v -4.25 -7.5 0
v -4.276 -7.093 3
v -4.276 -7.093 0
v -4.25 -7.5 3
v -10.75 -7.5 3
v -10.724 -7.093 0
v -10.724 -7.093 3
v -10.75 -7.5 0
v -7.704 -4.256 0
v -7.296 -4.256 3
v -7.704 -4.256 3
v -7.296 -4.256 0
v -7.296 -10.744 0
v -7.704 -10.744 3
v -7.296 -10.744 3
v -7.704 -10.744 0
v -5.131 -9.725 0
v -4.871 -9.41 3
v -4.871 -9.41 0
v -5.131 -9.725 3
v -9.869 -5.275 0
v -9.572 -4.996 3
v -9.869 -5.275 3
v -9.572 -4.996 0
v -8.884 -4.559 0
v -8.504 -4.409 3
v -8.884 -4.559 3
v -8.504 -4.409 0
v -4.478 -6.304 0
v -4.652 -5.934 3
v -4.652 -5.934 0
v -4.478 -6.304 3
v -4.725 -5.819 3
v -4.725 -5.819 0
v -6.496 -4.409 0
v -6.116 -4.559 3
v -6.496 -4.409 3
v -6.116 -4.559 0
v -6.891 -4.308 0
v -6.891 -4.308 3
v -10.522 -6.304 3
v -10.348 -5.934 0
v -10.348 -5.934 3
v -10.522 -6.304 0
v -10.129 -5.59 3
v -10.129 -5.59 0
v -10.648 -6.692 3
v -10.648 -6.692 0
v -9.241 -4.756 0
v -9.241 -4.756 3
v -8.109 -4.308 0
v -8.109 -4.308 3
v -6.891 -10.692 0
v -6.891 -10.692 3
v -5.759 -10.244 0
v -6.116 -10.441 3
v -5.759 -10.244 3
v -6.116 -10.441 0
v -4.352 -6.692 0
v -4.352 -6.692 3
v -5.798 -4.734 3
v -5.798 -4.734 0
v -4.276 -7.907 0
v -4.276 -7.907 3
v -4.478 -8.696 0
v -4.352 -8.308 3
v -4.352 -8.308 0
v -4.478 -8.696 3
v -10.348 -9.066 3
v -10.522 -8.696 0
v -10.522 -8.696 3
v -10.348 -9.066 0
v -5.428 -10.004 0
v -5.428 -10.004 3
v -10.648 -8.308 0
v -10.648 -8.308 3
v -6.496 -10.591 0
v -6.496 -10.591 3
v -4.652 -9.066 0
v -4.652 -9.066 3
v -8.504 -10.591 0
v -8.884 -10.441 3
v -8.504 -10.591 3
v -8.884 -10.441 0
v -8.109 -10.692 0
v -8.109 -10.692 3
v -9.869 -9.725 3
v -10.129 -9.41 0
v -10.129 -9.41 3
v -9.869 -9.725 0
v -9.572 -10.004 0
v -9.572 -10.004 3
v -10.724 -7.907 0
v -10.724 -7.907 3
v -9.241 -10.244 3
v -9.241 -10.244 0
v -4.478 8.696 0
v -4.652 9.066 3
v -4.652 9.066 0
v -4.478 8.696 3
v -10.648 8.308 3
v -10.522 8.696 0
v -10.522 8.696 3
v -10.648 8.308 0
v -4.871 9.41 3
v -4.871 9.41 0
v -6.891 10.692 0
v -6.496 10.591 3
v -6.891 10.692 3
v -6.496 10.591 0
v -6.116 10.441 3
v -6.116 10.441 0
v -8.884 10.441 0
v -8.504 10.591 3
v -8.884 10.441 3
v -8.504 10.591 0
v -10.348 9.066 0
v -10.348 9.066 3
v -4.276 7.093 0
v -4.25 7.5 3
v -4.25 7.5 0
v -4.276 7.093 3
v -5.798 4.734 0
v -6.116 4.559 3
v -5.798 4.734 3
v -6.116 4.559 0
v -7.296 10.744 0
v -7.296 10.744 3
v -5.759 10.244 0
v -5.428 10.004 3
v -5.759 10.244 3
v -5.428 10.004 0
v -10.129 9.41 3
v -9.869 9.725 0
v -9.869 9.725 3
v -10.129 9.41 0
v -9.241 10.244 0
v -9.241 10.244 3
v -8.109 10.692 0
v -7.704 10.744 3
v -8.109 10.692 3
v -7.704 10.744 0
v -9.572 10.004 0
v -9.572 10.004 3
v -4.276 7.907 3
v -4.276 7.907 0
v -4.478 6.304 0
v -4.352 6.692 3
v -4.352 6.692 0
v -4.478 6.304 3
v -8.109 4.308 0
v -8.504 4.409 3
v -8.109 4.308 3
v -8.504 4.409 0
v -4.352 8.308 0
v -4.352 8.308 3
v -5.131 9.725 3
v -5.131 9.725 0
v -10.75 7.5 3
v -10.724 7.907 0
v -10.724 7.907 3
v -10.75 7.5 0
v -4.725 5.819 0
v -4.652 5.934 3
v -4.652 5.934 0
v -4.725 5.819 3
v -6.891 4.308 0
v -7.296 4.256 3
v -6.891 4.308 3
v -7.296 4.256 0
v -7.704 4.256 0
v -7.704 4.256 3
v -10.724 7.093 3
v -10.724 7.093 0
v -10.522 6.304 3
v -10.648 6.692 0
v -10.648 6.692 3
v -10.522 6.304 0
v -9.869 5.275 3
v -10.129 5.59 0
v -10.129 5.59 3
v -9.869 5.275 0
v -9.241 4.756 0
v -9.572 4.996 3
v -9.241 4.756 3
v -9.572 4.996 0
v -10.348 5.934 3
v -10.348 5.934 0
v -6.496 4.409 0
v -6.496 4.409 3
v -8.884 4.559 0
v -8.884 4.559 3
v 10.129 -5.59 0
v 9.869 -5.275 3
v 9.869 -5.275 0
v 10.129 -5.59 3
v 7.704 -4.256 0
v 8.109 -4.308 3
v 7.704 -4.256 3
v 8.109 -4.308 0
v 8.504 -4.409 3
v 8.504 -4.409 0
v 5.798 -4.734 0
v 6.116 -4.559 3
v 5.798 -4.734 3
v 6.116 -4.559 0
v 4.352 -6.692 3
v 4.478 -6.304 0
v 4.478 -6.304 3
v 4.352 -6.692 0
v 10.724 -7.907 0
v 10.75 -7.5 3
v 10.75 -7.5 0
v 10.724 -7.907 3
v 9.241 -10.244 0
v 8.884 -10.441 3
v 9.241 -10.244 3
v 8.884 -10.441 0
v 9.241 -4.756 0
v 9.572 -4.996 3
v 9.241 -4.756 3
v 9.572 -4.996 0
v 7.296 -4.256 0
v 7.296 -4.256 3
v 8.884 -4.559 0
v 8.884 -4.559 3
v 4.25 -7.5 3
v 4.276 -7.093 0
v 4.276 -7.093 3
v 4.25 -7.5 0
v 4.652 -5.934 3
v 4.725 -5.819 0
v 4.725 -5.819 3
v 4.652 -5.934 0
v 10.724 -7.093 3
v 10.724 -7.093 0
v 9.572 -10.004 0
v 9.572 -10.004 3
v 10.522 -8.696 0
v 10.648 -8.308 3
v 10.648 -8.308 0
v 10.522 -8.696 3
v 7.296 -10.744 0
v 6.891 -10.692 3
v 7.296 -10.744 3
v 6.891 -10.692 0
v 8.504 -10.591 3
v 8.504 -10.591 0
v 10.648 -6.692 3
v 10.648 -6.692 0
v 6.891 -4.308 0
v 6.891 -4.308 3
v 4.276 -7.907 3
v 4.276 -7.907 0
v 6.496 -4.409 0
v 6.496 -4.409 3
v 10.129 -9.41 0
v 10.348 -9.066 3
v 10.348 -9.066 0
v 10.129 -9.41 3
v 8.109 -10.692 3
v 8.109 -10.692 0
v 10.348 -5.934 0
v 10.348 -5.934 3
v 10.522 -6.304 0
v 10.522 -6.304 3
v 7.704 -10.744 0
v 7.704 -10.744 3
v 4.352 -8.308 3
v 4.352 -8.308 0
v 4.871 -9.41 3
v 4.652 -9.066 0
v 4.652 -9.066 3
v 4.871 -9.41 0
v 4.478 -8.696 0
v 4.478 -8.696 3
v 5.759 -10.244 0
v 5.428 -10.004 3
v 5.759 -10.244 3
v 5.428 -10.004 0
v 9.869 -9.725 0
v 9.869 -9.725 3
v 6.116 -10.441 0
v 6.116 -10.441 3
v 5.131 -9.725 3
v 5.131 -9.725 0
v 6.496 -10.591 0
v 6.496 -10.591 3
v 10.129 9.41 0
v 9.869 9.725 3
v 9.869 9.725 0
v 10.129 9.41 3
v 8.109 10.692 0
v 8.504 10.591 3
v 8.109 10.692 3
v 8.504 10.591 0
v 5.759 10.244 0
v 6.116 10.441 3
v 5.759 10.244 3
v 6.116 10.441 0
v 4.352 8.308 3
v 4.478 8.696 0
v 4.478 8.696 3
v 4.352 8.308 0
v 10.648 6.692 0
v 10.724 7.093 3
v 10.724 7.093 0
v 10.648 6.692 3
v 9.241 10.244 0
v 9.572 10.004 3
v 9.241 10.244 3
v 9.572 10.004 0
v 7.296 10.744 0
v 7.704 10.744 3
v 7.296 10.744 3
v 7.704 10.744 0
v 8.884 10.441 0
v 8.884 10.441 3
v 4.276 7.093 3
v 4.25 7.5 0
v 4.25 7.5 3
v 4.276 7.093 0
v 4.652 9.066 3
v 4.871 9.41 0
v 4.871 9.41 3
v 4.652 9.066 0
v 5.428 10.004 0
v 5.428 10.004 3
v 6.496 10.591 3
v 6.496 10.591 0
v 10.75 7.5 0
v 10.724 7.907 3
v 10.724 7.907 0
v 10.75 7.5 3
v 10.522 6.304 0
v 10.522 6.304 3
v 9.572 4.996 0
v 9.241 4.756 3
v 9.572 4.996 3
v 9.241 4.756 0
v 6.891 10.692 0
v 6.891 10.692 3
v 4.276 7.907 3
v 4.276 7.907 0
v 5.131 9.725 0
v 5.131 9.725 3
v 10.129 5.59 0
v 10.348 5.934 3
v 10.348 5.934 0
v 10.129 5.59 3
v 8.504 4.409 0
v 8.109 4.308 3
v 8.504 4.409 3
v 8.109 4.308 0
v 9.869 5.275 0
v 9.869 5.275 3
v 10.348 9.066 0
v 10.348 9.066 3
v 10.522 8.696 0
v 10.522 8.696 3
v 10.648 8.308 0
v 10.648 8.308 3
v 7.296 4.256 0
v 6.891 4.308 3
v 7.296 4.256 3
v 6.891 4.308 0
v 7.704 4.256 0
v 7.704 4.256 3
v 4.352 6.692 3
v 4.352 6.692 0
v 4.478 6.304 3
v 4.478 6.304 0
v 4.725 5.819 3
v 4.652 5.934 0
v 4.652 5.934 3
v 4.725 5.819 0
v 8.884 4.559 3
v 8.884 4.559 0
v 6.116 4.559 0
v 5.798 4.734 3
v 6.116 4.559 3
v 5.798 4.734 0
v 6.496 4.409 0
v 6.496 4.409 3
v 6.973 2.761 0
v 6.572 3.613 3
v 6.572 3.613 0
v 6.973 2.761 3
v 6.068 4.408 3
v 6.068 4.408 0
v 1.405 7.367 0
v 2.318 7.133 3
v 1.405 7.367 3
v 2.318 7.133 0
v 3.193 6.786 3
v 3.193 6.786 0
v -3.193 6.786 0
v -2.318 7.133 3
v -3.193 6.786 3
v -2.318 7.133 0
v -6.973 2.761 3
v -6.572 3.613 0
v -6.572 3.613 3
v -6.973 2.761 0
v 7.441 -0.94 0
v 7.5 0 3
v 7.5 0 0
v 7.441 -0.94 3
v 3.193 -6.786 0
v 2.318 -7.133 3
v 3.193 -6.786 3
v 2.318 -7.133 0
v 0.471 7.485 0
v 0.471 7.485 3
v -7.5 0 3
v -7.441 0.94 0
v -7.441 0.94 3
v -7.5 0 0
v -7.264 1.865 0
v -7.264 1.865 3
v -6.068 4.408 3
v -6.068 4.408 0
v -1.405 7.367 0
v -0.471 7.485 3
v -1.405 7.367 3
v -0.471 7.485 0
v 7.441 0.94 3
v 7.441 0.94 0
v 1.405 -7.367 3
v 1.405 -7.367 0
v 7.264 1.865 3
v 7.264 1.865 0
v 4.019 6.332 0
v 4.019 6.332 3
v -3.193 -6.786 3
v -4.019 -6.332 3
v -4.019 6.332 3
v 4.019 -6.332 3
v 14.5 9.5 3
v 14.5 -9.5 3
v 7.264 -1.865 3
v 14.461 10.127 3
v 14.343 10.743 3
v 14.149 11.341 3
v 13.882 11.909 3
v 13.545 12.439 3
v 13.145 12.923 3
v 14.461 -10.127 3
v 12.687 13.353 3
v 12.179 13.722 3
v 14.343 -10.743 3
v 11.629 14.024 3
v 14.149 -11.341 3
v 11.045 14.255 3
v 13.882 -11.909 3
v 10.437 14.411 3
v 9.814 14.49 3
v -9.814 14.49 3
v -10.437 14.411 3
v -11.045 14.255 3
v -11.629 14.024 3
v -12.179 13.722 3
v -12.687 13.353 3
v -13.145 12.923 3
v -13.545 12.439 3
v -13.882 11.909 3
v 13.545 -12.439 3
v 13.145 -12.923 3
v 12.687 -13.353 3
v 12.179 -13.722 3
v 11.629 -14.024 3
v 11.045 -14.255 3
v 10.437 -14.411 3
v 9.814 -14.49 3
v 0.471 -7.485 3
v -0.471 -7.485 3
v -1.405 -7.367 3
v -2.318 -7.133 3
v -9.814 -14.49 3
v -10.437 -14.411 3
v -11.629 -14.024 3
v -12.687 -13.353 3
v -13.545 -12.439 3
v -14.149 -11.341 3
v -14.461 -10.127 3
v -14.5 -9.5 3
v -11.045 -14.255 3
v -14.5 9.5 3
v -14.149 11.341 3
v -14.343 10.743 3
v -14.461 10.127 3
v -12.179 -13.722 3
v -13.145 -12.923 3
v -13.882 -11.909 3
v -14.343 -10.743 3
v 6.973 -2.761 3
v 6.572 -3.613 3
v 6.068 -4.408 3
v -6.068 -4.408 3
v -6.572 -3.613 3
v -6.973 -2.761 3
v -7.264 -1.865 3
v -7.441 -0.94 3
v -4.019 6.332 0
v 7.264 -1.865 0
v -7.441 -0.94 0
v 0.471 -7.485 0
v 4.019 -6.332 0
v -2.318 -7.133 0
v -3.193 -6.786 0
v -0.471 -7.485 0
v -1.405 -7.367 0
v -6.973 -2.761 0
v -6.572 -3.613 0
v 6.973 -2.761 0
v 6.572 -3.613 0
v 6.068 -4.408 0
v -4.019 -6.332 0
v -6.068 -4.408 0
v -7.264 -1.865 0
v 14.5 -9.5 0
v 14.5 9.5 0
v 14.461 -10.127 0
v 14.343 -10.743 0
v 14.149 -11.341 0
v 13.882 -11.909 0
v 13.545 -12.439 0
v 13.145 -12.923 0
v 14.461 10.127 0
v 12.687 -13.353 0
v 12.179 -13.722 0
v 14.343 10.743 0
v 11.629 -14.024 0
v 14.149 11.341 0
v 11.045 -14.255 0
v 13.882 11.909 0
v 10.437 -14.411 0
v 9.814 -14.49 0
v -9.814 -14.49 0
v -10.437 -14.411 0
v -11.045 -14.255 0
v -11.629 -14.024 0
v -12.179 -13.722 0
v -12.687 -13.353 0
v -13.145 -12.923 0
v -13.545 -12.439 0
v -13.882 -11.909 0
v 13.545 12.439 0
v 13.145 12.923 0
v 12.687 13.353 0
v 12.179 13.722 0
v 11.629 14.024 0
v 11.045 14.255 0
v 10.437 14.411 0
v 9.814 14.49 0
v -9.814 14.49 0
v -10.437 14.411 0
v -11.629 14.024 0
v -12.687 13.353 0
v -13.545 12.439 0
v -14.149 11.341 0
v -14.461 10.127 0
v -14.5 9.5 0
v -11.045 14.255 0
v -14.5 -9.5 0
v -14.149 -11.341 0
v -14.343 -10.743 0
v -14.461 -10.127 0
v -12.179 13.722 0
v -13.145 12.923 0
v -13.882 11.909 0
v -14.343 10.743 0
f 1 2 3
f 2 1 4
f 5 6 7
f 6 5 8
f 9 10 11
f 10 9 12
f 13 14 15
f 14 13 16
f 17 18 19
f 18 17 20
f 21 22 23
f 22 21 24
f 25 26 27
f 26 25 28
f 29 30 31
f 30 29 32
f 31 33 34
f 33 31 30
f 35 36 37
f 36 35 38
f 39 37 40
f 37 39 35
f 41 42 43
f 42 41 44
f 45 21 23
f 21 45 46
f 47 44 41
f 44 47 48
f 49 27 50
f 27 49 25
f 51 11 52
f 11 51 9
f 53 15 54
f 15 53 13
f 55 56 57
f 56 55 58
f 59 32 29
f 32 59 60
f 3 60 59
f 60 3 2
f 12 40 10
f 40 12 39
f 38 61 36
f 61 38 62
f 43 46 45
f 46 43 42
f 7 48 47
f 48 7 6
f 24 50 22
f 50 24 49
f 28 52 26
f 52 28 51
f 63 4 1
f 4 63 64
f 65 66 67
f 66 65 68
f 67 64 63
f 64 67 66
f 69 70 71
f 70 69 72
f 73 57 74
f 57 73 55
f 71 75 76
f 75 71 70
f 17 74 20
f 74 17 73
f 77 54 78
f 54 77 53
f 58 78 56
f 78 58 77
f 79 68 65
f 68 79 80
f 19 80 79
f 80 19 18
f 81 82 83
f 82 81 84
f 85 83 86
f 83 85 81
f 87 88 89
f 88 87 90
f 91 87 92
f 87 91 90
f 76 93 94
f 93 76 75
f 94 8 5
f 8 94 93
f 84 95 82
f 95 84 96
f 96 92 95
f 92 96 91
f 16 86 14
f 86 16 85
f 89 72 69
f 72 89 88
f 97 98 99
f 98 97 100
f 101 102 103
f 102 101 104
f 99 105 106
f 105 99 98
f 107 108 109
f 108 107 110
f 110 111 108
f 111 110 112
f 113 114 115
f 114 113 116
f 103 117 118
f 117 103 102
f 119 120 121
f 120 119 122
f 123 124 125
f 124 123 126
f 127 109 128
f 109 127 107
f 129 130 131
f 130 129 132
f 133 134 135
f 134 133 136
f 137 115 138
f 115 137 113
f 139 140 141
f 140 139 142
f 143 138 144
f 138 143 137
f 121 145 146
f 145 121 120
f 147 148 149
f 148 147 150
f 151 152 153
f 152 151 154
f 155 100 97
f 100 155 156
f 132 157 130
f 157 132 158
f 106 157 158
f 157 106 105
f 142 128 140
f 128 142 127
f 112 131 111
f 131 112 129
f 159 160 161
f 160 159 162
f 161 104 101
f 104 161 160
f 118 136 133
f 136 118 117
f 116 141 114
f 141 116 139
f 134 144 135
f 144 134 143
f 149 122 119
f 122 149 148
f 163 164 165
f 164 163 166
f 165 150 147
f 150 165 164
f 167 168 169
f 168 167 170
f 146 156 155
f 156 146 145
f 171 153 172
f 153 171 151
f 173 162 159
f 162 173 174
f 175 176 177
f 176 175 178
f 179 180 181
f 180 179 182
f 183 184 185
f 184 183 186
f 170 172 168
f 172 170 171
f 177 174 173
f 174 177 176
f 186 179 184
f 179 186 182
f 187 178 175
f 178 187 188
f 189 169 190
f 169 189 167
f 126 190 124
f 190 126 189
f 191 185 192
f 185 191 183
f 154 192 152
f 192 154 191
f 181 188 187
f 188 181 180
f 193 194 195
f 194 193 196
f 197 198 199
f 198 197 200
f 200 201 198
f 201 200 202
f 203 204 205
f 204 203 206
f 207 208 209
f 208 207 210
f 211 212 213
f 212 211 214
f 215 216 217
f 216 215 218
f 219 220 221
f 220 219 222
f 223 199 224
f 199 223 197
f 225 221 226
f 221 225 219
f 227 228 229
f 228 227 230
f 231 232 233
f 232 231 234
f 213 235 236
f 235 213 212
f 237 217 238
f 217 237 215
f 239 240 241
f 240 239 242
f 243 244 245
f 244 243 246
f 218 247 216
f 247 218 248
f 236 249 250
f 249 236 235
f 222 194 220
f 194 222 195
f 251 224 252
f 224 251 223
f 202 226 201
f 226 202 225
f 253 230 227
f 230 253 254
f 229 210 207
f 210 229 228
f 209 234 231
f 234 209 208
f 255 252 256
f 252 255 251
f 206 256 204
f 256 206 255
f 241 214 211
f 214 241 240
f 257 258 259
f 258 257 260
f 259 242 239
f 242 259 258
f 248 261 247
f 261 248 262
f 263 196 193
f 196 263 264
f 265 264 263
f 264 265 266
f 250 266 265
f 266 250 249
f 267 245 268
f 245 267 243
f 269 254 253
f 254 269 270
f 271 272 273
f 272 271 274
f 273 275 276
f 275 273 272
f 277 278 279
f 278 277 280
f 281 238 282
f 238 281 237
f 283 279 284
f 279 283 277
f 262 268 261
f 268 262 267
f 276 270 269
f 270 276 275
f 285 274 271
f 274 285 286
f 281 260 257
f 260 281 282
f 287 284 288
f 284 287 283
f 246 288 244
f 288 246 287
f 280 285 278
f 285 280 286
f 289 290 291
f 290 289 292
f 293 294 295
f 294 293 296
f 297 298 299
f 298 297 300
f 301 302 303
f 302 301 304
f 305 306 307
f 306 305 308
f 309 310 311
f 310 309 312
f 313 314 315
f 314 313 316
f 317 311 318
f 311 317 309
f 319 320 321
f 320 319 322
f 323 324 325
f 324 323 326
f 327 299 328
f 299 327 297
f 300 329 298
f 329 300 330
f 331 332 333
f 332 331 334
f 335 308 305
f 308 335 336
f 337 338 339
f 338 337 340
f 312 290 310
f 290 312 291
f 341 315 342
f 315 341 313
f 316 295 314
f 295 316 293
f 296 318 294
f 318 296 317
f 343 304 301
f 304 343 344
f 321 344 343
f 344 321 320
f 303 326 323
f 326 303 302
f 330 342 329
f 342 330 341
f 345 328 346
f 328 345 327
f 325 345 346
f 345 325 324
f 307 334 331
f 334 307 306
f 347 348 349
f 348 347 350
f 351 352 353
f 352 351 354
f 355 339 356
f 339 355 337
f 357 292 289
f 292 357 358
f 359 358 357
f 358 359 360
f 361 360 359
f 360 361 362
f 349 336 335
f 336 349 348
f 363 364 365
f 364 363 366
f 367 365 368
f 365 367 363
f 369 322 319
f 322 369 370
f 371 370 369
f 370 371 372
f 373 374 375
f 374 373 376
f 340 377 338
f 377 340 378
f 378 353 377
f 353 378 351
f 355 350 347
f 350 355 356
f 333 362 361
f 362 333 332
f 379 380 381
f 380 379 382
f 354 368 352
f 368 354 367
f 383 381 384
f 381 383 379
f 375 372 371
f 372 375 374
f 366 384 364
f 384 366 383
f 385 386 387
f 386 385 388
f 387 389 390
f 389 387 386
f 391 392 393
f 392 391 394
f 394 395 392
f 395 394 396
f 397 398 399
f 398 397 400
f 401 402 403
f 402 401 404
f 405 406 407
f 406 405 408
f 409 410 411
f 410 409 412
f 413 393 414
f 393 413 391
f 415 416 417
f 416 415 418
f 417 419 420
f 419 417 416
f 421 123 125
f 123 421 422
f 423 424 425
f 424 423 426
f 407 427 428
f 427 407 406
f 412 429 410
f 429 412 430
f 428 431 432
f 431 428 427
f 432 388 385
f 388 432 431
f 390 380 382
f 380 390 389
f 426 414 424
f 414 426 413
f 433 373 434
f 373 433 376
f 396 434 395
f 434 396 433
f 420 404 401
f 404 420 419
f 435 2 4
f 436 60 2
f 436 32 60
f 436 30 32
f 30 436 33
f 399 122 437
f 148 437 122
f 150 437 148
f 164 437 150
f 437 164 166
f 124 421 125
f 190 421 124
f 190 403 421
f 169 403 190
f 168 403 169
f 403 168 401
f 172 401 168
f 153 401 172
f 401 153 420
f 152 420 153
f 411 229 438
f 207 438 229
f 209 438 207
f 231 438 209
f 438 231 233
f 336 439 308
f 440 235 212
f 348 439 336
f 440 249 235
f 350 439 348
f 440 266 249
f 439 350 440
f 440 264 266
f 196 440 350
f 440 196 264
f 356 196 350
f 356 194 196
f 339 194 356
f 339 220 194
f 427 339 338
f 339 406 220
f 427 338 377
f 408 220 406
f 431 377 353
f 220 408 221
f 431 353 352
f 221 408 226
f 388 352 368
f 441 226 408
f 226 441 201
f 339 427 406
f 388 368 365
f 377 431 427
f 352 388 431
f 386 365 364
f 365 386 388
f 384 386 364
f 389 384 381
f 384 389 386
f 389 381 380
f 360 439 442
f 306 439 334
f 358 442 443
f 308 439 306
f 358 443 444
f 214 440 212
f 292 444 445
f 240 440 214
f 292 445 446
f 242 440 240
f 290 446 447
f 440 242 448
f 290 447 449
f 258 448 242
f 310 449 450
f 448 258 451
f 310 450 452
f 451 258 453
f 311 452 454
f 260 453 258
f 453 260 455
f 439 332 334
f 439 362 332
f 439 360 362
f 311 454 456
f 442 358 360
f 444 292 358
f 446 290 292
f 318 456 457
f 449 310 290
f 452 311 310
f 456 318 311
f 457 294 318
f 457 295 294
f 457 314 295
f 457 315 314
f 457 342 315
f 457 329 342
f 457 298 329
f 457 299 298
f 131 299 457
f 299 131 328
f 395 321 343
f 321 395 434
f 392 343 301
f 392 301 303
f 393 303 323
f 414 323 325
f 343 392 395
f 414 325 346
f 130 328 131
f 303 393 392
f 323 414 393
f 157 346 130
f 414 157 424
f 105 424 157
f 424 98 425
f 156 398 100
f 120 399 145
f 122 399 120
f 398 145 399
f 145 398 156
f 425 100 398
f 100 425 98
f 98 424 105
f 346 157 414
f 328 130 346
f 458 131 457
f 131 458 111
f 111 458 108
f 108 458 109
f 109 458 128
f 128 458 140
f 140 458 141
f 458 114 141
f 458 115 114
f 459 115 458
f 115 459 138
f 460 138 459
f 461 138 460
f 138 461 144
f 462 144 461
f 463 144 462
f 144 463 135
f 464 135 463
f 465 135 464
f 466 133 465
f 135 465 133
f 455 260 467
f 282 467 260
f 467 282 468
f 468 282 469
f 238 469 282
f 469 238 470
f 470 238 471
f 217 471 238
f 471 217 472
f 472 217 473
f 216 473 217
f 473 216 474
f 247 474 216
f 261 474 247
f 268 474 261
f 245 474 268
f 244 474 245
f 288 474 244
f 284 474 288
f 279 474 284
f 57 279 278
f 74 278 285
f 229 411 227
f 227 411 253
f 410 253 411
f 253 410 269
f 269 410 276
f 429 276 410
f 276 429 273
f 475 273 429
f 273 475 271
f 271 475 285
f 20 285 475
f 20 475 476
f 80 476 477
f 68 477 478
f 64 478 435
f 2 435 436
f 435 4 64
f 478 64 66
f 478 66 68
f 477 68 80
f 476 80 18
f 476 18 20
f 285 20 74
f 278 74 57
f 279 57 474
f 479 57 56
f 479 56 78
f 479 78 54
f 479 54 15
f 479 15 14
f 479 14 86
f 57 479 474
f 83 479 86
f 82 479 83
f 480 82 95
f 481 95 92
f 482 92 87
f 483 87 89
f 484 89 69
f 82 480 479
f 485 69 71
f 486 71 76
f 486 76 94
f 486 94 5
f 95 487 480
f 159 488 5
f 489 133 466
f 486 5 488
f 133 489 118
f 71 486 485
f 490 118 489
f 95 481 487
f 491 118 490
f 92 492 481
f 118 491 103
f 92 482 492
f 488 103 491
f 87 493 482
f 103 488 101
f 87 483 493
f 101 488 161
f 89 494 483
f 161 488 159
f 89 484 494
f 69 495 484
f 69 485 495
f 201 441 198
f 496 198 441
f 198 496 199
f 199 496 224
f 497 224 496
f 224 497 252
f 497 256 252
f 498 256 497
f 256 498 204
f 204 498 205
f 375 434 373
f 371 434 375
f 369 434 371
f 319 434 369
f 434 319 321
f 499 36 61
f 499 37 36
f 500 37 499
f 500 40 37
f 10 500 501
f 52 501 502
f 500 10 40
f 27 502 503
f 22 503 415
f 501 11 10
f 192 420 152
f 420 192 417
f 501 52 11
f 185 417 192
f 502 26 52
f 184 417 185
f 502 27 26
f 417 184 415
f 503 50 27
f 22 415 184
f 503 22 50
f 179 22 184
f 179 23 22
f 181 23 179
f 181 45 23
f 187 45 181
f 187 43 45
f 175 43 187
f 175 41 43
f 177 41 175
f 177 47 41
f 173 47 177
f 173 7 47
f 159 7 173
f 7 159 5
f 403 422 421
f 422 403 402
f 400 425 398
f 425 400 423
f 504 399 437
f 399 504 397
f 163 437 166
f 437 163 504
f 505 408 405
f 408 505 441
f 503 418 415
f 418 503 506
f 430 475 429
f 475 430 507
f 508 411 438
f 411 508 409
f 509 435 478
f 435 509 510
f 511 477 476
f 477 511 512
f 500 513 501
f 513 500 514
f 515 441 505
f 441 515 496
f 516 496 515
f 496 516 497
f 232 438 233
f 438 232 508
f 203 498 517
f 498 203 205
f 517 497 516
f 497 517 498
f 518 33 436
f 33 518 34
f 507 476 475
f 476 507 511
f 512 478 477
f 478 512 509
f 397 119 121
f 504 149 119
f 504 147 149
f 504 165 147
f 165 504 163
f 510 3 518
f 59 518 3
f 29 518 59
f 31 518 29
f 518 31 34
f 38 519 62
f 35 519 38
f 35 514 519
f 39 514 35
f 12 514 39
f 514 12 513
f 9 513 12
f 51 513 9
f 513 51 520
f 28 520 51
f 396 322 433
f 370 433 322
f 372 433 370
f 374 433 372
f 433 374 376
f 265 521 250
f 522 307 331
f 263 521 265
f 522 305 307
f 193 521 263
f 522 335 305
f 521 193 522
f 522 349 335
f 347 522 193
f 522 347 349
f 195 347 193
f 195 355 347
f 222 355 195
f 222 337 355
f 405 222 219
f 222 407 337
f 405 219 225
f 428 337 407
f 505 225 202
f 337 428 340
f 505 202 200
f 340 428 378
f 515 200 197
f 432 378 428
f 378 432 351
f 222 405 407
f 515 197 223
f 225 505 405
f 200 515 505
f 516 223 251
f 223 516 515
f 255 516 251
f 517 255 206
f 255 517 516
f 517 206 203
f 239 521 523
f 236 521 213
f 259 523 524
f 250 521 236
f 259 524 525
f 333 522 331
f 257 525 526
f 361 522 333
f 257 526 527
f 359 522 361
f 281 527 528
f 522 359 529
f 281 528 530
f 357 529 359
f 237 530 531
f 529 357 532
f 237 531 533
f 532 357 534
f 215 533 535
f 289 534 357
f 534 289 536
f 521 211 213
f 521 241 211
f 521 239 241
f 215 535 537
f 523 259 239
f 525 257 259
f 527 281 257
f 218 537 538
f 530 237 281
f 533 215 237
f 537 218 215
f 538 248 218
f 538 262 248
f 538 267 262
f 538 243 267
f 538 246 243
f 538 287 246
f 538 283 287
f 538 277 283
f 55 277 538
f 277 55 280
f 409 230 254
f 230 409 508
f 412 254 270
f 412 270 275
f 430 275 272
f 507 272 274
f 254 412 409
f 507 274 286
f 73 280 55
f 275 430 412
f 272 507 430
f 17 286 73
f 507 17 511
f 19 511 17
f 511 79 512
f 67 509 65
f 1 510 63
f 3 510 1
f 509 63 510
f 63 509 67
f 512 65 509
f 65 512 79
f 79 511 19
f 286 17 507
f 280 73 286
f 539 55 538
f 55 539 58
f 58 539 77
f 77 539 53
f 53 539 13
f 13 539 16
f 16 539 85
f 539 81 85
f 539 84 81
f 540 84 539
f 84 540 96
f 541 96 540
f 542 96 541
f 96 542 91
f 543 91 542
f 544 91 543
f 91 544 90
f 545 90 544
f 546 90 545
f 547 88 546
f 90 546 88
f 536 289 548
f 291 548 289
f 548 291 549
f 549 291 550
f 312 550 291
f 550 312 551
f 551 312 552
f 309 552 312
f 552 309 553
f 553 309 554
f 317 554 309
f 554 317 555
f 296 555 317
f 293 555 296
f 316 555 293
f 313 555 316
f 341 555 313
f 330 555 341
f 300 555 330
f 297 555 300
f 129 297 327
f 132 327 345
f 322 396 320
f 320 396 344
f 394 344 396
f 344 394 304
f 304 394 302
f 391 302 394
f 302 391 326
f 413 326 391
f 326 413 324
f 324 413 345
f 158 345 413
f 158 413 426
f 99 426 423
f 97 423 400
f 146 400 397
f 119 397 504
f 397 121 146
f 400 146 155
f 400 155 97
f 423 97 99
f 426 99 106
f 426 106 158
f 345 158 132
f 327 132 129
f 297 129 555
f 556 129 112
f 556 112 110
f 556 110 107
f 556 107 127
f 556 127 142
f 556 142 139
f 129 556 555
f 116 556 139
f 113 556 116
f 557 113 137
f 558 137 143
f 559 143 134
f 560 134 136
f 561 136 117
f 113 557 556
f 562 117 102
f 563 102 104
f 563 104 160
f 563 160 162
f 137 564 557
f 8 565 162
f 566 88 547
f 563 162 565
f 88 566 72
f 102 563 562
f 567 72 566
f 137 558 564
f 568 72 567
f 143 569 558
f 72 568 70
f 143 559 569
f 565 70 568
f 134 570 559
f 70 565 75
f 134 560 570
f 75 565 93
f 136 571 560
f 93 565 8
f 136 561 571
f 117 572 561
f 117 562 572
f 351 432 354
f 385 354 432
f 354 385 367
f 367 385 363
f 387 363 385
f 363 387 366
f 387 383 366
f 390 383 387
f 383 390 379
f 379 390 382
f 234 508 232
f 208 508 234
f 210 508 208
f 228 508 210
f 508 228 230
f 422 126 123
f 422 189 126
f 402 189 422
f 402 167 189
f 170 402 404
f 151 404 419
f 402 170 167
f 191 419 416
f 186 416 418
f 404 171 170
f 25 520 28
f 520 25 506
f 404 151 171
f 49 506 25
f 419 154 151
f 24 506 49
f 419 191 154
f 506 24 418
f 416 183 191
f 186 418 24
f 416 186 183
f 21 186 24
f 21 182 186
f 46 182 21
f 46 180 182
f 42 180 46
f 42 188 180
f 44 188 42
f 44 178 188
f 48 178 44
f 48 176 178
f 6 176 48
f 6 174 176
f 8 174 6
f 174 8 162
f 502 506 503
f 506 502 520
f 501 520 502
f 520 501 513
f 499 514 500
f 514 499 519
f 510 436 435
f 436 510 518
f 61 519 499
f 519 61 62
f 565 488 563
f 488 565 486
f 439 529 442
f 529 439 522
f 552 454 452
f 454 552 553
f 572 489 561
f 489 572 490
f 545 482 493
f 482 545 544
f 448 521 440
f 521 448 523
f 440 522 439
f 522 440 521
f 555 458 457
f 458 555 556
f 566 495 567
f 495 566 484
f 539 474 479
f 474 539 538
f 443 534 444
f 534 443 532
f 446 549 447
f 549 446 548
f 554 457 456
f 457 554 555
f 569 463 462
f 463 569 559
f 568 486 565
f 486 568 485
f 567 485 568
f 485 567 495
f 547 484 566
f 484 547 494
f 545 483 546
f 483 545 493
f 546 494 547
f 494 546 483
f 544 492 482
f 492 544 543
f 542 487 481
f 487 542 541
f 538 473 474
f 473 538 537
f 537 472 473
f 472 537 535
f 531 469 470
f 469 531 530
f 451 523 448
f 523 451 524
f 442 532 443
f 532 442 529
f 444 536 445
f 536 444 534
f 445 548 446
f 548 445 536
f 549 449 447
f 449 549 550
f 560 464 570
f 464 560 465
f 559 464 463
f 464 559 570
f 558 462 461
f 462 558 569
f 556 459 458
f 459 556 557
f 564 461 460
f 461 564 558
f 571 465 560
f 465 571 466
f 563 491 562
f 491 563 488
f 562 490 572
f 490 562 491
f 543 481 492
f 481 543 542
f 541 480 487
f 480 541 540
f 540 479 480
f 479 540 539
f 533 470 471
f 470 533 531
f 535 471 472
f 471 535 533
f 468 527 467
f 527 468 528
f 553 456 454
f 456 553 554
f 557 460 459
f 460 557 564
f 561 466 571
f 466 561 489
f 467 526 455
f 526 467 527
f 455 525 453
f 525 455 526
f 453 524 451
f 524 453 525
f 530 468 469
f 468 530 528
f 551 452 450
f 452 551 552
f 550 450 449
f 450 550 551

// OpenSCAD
$fn = 50;


difference() {
	union() {
		hull() {
			translate(v = [-9.5000000000, 9.5000000000, 0]) {
				cylinder(h = 3, r = 5);
			}
			translate(v = [9.5000000000, 9.5000000000, 0]) {
				cylinder(h = 3, r = 5);
			}
			translate(v = [-9.5000000000, -9.5000000000, 0]) {
				cylinder(h = 3, r = 5);
			}
			translate(v = [9.5000000000, -9.5000000000, 0]) {
				cylinder(h = 3, r = 5);
			}
		}
	}
	union() {
		#translate(v = [-7.5000000000, -7.5000000000, -100.0000000000]) {
			cylinder(h = 200, r = 3.2500000000);
		}
		#translate(v = [-7.5000000000, 7.5000000000, -100.0000000000]) {
			cylinder(h = 200, r = 3.2500000000);
		}
		#translate(v = [7.5000000000, -7.5000000000, -100.0000000000]) {
			cylinder(h = 200, r = 3.2500000000);
		}
		#translate(v = [7.5000000000, 7.5000000000, -100.0000000000]) {
			cylinder(h = 200, r = 3.2500000000);
		}
		#cylinder(h = 3, r = 7.5000000000);
	}
}
